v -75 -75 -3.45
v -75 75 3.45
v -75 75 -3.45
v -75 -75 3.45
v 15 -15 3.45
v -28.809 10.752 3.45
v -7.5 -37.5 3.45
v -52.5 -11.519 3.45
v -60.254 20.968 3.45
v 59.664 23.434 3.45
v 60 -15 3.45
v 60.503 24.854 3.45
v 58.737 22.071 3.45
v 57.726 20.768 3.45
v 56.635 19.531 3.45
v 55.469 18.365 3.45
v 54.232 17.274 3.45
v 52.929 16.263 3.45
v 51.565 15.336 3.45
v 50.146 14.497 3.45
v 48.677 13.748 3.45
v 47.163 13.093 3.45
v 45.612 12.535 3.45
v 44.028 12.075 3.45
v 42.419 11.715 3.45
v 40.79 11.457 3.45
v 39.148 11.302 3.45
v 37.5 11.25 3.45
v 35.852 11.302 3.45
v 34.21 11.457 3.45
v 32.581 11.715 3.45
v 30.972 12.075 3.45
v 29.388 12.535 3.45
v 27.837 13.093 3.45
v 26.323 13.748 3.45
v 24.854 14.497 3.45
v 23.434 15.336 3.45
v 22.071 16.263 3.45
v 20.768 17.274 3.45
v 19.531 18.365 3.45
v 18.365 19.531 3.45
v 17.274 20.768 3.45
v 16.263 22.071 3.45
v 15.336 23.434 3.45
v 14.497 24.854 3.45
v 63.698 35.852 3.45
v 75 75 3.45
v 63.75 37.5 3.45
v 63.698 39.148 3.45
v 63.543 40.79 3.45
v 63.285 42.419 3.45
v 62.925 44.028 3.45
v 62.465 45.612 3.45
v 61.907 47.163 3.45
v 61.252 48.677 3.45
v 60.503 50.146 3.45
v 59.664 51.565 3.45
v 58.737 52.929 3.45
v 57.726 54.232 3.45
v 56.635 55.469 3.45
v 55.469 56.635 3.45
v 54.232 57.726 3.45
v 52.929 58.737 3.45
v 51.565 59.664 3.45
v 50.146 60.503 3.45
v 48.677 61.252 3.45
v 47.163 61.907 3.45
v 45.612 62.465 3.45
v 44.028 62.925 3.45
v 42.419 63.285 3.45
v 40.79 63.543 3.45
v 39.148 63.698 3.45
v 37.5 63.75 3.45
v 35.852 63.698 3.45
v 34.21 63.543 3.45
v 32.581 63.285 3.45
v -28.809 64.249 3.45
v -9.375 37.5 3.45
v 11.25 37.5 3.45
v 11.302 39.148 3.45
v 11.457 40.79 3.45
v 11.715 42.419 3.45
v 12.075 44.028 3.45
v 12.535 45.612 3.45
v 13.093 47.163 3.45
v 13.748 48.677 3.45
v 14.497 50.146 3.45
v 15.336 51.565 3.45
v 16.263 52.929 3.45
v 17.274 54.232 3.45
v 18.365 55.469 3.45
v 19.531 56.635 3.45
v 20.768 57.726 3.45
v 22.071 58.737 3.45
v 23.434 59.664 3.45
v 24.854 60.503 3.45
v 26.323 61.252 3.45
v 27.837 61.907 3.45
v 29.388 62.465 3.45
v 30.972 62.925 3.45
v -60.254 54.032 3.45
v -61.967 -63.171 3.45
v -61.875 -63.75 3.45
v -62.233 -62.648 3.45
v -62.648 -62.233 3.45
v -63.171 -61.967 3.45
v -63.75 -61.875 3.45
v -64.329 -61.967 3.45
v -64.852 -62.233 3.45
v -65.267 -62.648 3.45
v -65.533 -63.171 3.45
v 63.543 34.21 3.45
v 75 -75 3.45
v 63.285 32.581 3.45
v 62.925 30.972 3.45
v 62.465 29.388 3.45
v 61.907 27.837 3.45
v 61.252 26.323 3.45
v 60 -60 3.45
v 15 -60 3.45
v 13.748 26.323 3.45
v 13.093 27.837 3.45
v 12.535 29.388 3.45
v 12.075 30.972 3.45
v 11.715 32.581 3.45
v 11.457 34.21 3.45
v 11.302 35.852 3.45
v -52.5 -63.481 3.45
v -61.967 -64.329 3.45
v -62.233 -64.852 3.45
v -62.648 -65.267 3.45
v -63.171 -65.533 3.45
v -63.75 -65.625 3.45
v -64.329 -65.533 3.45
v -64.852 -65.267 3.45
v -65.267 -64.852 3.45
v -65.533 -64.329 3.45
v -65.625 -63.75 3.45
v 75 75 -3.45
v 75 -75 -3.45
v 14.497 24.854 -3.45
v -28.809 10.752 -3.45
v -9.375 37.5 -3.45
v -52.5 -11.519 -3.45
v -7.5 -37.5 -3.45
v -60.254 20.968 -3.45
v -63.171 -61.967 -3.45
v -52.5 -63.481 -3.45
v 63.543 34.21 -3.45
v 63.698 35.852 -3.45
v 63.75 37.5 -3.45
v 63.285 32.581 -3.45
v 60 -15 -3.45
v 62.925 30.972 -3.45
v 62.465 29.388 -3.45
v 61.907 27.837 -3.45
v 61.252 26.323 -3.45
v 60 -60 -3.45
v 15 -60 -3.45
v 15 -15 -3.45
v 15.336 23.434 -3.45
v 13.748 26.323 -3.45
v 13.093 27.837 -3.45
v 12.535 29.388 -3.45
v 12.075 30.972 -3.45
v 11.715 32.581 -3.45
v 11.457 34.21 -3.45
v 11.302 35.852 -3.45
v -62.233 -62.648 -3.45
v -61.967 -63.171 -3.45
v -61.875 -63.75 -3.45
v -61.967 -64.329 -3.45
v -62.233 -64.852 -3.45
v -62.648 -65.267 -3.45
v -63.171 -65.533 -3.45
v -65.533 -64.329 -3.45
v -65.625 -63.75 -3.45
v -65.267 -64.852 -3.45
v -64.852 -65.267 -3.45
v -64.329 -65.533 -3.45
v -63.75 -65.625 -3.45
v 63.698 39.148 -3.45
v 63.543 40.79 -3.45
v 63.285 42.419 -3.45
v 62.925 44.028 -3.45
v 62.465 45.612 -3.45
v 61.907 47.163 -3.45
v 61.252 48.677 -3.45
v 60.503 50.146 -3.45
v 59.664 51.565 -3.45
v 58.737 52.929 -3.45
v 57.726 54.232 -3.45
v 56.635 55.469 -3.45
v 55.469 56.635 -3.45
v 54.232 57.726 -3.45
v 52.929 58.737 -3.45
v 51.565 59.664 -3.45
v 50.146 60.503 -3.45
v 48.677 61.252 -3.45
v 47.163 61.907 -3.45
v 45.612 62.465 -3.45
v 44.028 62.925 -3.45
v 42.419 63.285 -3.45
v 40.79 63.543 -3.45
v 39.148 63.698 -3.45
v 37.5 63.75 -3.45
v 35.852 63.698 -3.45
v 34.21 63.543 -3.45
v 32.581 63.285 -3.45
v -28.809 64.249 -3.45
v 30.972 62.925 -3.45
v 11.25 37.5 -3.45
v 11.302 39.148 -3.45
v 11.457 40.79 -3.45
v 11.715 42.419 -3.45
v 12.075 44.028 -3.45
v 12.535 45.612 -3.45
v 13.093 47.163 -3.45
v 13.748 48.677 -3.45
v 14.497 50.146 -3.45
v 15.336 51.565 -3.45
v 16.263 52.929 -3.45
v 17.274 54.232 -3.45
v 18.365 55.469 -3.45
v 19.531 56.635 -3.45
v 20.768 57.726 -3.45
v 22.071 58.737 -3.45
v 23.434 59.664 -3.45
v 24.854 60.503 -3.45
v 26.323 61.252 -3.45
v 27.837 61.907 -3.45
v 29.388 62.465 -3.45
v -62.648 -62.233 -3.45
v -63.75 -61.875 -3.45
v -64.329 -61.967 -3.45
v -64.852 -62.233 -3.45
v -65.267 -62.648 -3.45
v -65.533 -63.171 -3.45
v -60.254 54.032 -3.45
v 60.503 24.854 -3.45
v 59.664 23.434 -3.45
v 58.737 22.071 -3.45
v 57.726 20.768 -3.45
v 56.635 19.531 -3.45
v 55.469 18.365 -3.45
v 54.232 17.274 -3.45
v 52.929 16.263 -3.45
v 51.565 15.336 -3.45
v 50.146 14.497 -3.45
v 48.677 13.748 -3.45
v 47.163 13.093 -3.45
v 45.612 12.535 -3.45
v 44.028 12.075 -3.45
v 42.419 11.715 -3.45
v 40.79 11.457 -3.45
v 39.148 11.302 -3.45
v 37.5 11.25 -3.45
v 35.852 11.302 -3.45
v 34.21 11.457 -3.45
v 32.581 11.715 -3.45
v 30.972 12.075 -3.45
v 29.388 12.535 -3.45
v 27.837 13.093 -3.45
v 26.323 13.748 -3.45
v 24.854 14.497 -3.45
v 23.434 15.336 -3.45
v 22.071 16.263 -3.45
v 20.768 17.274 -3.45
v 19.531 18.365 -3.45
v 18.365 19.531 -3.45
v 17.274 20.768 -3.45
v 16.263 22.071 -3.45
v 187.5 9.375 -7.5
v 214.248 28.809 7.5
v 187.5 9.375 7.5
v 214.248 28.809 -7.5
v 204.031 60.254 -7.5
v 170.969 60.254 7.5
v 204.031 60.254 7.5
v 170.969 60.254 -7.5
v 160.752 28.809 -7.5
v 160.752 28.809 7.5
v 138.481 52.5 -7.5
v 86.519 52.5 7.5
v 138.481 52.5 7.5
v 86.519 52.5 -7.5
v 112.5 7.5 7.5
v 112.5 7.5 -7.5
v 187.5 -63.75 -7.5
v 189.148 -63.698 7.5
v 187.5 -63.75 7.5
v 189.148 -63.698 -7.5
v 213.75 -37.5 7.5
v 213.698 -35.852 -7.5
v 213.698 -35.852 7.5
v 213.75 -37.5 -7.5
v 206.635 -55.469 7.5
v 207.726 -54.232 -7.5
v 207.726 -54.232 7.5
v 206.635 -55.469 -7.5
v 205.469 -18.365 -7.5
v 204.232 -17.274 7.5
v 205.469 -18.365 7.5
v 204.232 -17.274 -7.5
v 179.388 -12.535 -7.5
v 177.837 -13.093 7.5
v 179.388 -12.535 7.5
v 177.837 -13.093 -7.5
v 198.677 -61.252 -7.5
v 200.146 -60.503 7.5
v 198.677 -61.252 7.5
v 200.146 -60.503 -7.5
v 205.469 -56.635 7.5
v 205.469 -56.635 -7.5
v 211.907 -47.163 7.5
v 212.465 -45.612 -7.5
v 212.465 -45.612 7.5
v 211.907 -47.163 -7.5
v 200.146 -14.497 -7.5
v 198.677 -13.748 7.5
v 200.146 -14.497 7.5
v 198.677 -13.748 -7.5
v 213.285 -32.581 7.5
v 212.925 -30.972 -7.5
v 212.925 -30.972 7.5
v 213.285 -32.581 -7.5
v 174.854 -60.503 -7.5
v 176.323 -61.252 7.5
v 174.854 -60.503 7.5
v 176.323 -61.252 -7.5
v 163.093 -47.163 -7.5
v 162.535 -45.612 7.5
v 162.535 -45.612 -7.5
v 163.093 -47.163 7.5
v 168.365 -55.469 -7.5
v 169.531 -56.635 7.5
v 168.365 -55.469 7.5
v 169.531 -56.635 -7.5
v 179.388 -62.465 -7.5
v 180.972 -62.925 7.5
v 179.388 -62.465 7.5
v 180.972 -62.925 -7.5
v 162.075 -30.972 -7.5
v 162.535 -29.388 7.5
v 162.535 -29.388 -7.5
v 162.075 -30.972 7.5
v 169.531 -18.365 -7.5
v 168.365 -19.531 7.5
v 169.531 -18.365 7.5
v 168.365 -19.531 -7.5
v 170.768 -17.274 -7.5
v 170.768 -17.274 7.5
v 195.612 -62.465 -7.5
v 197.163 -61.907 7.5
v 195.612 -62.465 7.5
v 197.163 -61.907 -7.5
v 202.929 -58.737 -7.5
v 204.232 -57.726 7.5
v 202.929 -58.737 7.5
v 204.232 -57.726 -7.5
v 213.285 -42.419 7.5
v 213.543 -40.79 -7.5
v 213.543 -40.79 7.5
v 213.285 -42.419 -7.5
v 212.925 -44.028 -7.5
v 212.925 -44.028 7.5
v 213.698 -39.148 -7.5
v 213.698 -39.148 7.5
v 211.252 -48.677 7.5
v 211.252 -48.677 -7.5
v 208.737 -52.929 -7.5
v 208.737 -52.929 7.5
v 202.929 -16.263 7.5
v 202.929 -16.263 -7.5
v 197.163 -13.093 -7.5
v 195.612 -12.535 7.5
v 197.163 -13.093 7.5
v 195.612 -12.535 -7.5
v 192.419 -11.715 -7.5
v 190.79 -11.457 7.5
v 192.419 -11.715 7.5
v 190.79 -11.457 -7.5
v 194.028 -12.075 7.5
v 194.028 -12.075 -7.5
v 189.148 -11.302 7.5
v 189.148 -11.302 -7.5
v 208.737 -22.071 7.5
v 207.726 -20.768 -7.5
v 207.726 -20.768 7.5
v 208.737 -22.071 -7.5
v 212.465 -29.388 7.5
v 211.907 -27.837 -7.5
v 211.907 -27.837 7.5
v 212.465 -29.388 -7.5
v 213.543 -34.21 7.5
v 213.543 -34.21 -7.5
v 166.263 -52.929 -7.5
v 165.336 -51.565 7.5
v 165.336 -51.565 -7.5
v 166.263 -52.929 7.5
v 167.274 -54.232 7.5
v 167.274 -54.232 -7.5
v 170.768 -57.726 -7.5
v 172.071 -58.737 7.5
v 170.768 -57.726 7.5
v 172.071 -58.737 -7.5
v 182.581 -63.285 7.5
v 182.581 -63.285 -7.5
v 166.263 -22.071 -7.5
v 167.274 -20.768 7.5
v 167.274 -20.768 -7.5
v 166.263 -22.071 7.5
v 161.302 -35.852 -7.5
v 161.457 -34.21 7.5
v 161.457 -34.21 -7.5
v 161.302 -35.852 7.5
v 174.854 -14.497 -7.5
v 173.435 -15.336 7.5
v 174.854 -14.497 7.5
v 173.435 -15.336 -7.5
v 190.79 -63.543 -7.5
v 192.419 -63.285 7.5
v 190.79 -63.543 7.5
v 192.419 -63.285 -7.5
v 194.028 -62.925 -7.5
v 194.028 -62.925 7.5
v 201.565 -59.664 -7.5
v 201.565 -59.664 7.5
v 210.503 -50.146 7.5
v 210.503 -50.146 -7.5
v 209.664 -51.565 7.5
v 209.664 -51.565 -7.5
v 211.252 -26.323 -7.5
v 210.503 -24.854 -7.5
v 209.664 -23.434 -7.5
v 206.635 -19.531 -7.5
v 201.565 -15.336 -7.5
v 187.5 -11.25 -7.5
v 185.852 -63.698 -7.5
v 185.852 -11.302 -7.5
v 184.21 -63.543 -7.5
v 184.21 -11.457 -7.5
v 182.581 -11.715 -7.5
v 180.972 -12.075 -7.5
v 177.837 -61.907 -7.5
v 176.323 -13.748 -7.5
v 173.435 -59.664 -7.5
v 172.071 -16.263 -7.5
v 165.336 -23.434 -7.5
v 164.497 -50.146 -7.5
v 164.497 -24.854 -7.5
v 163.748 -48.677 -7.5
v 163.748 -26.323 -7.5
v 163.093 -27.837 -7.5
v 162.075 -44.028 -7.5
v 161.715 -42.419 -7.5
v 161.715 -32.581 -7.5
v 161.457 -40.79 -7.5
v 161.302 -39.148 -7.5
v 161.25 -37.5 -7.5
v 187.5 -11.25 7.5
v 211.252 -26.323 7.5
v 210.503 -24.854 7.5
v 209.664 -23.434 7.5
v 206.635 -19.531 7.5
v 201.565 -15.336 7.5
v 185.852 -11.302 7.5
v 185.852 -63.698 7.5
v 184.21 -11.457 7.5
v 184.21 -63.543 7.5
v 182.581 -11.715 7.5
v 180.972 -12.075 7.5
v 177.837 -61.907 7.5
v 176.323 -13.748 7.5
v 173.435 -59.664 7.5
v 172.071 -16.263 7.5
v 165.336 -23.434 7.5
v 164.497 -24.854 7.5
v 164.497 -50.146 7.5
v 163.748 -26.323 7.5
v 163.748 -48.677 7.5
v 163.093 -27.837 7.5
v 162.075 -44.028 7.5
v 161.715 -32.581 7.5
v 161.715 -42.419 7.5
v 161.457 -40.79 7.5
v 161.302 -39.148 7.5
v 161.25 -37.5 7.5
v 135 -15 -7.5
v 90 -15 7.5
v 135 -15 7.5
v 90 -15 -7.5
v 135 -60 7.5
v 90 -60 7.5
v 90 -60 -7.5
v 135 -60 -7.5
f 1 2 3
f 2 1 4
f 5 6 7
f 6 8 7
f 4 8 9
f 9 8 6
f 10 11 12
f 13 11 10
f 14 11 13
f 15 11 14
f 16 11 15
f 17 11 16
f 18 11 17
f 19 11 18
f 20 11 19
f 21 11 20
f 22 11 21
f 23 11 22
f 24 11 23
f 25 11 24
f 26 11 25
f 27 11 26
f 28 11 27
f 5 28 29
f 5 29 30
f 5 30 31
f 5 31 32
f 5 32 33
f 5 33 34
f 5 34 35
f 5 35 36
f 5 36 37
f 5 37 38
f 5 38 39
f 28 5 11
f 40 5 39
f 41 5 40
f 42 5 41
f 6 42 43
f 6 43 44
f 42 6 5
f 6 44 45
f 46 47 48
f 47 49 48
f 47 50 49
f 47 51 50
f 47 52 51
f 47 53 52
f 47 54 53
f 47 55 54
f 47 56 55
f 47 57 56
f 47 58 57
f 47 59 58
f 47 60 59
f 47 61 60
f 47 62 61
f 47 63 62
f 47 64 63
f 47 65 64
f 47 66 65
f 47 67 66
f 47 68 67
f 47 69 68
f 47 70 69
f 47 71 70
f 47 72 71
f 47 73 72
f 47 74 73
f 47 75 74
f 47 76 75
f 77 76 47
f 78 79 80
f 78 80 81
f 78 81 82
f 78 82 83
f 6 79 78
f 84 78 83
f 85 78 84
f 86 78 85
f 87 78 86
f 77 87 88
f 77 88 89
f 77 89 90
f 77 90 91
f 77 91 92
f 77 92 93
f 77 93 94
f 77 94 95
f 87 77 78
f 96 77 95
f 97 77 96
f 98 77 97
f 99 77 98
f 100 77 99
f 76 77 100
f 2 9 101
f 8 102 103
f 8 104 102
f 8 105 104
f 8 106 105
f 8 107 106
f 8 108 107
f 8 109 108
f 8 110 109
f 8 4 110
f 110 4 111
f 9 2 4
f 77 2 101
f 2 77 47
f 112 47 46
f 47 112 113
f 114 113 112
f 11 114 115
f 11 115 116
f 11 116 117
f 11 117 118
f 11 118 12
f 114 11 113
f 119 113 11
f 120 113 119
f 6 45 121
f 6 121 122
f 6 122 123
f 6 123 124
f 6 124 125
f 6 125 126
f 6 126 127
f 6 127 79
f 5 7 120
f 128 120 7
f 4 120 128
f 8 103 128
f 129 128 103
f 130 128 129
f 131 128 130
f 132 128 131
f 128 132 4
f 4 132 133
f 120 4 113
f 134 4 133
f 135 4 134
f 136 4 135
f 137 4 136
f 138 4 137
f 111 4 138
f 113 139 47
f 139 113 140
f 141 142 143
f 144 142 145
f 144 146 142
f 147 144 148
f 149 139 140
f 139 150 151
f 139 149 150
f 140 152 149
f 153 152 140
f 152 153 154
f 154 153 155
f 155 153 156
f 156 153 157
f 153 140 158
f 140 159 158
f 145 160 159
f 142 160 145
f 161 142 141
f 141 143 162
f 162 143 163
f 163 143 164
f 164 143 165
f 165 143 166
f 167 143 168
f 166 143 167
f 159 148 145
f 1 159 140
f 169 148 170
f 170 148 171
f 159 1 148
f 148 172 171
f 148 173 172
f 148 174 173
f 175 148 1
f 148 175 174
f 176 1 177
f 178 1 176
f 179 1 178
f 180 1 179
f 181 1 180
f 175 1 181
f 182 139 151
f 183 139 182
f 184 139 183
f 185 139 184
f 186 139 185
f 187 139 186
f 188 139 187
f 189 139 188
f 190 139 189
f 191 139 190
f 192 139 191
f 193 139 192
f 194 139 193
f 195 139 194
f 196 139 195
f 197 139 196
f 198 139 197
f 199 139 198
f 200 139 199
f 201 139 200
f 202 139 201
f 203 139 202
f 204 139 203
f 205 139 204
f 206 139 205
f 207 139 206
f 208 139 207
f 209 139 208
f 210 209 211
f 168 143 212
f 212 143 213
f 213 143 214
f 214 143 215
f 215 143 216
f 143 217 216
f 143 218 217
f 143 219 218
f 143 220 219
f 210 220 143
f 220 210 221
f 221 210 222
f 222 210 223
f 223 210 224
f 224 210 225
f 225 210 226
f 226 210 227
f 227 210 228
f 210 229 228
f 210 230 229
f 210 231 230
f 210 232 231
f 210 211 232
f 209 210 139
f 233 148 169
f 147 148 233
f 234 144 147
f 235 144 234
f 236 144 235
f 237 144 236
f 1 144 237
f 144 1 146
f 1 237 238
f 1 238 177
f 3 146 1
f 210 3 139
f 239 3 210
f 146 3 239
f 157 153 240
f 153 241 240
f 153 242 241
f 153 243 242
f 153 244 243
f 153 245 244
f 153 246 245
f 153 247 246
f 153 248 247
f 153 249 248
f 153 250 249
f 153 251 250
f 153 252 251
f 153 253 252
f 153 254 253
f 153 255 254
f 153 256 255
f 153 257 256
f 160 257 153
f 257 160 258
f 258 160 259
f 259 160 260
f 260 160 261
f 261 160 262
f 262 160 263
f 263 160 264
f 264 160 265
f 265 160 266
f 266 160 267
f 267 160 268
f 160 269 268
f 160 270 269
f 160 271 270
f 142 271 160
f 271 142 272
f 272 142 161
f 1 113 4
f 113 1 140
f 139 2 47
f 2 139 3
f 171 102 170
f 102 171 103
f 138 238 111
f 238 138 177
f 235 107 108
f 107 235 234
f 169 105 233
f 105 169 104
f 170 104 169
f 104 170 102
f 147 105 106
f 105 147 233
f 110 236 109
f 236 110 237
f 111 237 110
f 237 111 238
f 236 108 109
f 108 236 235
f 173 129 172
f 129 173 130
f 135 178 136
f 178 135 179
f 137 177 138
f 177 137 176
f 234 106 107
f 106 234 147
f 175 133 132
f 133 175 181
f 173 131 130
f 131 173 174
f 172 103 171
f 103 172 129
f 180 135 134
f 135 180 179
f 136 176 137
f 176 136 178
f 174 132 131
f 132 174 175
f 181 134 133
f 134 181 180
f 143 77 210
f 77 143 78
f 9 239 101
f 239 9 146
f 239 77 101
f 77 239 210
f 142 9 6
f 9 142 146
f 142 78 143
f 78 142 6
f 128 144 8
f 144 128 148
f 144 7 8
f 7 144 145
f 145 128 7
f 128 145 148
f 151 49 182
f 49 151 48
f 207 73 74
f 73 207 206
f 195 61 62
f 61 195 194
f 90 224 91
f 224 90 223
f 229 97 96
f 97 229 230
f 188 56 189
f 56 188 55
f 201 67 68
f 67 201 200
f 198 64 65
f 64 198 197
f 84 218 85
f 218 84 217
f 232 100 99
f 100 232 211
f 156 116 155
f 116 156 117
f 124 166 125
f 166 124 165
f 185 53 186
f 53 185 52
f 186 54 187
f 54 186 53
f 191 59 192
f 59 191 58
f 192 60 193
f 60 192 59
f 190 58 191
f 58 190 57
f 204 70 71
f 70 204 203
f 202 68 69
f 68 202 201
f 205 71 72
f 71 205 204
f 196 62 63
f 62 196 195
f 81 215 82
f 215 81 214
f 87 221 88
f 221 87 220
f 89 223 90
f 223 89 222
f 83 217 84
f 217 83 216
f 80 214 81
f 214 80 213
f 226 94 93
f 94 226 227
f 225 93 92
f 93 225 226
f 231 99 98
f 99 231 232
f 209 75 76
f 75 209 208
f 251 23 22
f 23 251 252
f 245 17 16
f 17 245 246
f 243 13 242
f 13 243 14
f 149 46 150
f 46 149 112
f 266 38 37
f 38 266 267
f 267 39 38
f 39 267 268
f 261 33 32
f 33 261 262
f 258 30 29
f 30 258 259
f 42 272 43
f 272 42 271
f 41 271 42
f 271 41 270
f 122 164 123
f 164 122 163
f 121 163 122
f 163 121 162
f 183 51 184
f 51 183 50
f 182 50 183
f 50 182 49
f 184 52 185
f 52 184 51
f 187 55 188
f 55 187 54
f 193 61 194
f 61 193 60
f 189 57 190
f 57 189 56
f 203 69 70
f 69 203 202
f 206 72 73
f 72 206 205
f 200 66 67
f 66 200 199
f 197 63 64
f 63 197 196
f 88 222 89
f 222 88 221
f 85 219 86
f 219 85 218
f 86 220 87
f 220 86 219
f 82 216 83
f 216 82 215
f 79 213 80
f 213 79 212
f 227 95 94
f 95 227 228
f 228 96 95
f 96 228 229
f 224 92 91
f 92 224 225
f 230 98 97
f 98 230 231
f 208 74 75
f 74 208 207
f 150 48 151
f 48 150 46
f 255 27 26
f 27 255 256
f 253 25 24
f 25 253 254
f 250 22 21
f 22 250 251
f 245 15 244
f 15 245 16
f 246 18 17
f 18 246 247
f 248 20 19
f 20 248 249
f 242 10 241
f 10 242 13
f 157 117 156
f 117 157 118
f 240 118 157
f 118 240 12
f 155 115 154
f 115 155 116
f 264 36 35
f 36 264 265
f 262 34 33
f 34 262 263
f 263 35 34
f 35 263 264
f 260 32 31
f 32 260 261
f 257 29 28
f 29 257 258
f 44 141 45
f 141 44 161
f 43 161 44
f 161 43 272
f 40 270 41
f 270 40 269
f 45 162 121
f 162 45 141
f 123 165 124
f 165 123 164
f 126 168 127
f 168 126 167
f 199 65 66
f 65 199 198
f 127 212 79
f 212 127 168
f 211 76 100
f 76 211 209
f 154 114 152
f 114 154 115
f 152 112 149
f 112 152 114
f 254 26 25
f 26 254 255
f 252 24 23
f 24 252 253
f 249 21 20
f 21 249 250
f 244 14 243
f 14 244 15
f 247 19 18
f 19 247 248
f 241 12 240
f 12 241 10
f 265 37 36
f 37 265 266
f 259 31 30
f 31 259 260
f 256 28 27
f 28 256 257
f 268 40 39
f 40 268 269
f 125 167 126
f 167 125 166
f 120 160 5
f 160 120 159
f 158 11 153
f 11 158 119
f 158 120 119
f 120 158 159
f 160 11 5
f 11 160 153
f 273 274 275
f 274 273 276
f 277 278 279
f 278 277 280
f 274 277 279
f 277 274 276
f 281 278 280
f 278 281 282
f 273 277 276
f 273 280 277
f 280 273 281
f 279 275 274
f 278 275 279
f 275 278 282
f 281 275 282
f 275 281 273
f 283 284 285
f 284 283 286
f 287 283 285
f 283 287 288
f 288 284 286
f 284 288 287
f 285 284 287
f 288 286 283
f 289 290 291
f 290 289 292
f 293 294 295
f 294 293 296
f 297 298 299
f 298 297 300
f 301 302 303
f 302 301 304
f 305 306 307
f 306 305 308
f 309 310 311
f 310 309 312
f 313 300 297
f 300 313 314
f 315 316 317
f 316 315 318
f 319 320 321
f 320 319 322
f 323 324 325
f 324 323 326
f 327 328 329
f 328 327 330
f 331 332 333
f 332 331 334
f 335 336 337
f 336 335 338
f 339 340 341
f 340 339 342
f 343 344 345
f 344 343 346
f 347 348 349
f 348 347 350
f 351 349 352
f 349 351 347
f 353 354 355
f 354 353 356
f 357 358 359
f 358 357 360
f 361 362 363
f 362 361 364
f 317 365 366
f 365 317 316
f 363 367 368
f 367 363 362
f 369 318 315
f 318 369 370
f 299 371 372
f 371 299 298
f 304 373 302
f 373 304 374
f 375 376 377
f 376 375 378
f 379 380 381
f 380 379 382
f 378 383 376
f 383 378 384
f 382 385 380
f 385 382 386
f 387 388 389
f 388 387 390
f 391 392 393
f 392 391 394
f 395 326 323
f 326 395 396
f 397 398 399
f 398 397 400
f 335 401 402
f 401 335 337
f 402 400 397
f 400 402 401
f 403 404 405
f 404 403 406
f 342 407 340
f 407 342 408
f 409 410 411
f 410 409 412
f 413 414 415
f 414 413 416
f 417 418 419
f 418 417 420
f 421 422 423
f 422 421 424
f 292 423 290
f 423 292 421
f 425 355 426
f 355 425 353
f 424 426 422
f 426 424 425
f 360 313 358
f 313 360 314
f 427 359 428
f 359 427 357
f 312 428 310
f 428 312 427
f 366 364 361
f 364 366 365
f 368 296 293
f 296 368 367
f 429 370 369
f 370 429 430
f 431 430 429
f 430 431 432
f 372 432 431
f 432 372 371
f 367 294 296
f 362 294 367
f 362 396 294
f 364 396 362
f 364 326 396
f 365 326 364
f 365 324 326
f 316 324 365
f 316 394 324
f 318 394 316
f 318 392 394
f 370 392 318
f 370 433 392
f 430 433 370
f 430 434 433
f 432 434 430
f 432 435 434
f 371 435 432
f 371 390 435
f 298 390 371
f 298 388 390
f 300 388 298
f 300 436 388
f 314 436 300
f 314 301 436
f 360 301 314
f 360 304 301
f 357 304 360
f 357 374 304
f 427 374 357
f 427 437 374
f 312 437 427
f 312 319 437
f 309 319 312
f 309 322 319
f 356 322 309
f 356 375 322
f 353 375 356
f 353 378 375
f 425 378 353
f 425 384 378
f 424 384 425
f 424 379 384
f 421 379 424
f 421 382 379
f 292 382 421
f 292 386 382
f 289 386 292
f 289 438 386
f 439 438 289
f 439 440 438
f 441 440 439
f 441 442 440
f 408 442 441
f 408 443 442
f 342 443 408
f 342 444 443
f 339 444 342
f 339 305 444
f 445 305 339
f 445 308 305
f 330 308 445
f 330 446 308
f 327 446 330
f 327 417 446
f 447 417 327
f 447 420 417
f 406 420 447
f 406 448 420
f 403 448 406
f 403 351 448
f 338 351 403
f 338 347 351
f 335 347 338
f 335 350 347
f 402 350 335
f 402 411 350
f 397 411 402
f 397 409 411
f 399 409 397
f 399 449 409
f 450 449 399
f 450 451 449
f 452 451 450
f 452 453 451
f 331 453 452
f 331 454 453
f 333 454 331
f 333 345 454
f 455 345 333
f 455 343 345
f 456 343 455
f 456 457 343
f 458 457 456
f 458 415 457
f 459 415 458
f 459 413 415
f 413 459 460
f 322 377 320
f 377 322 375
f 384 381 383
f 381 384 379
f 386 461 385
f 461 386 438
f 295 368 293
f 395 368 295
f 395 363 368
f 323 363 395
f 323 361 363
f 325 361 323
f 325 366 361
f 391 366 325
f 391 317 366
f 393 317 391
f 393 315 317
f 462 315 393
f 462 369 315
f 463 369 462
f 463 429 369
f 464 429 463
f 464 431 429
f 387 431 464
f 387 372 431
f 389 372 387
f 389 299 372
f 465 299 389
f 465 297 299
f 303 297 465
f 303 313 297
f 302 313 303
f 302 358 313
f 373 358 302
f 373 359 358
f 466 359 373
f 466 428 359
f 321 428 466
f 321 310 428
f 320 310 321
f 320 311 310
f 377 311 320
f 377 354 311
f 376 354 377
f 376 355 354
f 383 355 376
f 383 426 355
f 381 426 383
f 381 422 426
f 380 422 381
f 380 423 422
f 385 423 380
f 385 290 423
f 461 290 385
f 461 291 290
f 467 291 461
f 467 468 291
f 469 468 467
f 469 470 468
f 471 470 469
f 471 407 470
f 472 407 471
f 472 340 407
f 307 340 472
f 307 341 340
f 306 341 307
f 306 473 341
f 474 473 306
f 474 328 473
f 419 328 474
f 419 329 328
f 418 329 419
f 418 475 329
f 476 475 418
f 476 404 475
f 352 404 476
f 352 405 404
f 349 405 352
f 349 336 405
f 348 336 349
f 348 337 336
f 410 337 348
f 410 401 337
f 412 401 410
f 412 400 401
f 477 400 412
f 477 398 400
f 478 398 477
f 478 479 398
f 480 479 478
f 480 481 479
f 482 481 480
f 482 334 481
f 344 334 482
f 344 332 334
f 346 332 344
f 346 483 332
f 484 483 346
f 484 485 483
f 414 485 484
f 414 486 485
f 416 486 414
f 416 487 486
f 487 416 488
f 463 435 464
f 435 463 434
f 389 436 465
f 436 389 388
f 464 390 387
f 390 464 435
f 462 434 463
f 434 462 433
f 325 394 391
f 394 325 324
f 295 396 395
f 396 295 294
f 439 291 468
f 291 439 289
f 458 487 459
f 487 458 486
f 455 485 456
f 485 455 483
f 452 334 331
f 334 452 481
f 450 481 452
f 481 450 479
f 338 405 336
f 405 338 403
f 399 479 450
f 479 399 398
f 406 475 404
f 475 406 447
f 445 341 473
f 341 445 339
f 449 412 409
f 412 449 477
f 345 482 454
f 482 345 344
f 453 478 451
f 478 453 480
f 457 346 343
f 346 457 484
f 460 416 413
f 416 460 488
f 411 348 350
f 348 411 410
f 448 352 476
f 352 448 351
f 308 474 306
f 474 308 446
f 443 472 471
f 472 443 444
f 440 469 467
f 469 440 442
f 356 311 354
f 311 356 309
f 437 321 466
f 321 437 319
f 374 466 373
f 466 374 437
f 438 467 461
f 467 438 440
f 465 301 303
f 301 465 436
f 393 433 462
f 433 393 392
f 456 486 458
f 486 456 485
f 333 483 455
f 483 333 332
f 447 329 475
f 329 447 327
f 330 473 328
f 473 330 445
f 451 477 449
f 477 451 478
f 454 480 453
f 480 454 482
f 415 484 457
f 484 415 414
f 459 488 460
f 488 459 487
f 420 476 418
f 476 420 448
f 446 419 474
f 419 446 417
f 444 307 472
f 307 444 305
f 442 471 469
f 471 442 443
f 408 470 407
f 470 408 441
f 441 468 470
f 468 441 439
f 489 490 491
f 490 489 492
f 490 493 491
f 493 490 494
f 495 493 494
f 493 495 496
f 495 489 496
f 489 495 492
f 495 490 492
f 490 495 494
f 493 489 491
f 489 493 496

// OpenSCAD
h=5;

module triangle() {
    cylinder(d=8, $fn=3, h=h, center=true);
}

module thing(fn) {
    cylinder(d=7.5, $fn=fn, h=h, center=true);
}


module roundthing() {
    cylinder(d=7, $fn=100, h=h, center=true);
}

module cubething() {
    cube([6,6,h], center=true);
}

scale([7.5, 7.5, 3]) {
difference() {
    cube([20, 20, 2.3], center=true);
    
    translate([-8.5, -8.5, 0])
    cylinder(d=0.5, h=3, $fn=20, center=true);
    
    translate([-5, 5, 0])
    thing(5);
    
    translate([-5, -5, 0])
    triangle();
    
    translate([5, 5, 0])
    roundthing();
    
    translate([5, -5, 0])
    cubething();
}

translate([20, 0, 0])
rotate([0, 0, 270]) {
    translate([-5, 5, 0])
    thing(5);
    
    translate([-5, -5, 0])
    triangle();
    
    translate([5, 5, 0])
    roundthing();
    
    translate([5, -5, 0])
    cubething();
}
}
